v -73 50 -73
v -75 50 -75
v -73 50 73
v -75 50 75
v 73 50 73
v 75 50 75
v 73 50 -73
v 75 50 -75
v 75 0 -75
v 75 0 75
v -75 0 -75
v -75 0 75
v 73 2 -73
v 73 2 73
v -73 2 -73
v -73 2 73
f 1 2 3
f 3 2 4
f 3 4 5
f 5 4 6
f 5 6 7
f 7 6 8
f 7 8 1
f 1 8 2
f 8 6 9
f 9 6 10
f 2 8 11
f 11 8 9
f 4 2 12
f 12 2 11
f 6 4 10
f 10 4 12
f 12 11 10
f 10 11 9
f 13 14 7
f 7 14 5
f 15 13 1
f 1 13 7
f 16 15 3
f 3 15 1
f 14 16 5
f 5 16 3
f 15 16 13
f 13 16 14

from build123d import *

# Parameters (mm, degrees)
SKETCH1_W           = 150
SKETCH1_H           = 150
BOSS_EXTRUDE1_DEPTH = 50
CUT_EXTRUDE1_START  = 2
SKETCH2_W           = 146
SKETCH2_H           = 146
CUT_EXTRUDE1_DEPTH  = 48


with BuildPart() as part:
    # Sketch1 → Boss-Extrude1 (new body)
    with BuildSketch(Plane(origin=(0, 0, 0), x_dir=(1, 0, 0), z_dir=(0, 1, 0))):
        Rectangle(SKETCH1_W, SKETCH1_H)
    extrude(amount=BOSS_EXTRUDE1_DEPTH)

    # Sketch2 → Cut-Extrude1 (cut)
    with BuildSketch(Plane(origin=(0, 0, 0), x_dir=(1, 0, 0), z_dir=(0, 1, 0)).offset(CUT_EXTRUDE1_START)):
        Rectangle(SKETCH2_W, SKETCH2_H)
    extrude(amount=CUT_EXTRUDE1_DEPTH, mode=Mode.SUBTRACT)


solid = part.part
